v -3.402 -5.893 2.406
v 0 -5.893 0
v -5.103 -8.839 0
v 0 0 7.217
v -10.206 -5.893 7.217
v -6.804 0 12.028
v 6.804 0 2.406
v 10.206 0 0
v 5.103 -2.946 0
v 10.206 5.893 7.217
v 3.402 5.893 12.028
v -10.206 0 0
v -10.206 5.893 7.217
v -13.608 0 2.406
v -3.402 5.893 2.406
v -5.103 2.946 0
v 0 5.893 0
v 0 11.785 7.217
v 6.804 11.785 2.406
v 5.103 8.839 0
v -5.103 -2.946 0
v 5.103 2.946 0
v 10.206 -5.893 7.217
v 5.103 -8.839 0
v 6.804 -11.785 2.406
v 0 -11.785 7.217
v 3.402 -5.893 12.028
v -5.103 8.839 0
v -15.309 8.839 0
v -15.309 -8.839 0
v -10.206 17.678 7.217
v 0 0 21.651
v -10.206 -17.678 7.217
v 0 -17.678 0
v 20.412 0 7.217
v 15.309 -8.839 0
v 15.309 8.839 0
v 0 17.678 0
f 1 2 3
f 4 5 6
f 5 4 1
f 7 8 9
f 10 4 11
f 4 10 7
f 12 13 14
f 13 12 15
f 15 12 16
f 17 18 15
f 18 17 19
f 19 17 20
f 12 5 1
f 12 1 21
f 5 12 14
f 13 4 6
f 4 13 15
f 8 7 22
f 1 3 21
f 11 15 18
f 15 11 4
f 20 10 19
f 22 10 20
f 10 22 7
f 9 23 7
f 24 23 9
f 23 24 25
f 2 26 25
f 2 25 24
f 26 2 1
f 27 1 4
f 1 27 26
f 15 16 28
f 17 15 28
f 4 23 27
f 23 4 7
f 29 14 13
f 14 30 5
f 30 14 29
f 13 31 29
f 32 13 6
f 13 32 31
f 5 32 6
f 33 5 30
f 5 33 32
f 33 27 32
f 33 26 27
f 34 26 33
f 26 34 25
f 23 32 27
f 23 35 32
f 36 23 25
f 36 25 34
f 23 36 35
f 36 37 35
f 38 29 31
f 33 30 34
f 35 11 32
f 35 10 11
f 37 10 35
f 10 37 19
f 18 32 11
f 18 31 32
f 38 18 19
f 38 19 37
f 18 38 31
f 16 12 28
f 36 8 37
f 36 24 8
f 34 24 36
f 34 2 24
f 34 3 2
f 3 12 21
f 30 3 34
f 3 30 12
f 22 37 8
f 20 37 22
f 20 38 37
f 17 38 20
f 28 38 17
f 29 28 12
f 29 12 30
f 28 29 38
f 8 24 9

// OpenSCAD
// Menger Sponge

// Size of edge of sponge
D=25;
// Fractal depth (number of iterations)
n=1;

echo(version=version());

module menger() {
  difference() {
    cube(D, center=true);
    for (v=[[0,0,0], [0,0,90], [0,90,0]])
      rotate(v) menger_negative(side=D, maxside=D, level=n);
  }
}

module menger_negative(side=1, maxside=1, level=1) {
  l=side/3;
  cube([maxside*1.1, l, l], center=true);
  if (level > 1) {
    for (i=[-1:1], j=[-1:1])
      if (i || j)
        translate([0, i*l, j*l])
          menger_negative(side=l*1.05, maxside=maxside, level=level-1);
  }
}

difference() {
  rotate([45, atan(1/sqrt(2)), 0]) menger();
  translate([0,0,-D]) cube(2*D, center=true);
}

// Written by Nathan Hellweg, Emmett Lalish and Marius Kintel May 13, 2013
//
// To the extent possible under law, the author(s) have dedicated all
// copyright and related and neighboring rights to this software to the
// public domain worldwide. This software is distributed without any
// warranty.
//
// You should have received a copy of the CC0 Public Domain
// Dedication along with this software.
// If not, see <http://creativecommons.org/publicdomain/zero/1.0/>.
